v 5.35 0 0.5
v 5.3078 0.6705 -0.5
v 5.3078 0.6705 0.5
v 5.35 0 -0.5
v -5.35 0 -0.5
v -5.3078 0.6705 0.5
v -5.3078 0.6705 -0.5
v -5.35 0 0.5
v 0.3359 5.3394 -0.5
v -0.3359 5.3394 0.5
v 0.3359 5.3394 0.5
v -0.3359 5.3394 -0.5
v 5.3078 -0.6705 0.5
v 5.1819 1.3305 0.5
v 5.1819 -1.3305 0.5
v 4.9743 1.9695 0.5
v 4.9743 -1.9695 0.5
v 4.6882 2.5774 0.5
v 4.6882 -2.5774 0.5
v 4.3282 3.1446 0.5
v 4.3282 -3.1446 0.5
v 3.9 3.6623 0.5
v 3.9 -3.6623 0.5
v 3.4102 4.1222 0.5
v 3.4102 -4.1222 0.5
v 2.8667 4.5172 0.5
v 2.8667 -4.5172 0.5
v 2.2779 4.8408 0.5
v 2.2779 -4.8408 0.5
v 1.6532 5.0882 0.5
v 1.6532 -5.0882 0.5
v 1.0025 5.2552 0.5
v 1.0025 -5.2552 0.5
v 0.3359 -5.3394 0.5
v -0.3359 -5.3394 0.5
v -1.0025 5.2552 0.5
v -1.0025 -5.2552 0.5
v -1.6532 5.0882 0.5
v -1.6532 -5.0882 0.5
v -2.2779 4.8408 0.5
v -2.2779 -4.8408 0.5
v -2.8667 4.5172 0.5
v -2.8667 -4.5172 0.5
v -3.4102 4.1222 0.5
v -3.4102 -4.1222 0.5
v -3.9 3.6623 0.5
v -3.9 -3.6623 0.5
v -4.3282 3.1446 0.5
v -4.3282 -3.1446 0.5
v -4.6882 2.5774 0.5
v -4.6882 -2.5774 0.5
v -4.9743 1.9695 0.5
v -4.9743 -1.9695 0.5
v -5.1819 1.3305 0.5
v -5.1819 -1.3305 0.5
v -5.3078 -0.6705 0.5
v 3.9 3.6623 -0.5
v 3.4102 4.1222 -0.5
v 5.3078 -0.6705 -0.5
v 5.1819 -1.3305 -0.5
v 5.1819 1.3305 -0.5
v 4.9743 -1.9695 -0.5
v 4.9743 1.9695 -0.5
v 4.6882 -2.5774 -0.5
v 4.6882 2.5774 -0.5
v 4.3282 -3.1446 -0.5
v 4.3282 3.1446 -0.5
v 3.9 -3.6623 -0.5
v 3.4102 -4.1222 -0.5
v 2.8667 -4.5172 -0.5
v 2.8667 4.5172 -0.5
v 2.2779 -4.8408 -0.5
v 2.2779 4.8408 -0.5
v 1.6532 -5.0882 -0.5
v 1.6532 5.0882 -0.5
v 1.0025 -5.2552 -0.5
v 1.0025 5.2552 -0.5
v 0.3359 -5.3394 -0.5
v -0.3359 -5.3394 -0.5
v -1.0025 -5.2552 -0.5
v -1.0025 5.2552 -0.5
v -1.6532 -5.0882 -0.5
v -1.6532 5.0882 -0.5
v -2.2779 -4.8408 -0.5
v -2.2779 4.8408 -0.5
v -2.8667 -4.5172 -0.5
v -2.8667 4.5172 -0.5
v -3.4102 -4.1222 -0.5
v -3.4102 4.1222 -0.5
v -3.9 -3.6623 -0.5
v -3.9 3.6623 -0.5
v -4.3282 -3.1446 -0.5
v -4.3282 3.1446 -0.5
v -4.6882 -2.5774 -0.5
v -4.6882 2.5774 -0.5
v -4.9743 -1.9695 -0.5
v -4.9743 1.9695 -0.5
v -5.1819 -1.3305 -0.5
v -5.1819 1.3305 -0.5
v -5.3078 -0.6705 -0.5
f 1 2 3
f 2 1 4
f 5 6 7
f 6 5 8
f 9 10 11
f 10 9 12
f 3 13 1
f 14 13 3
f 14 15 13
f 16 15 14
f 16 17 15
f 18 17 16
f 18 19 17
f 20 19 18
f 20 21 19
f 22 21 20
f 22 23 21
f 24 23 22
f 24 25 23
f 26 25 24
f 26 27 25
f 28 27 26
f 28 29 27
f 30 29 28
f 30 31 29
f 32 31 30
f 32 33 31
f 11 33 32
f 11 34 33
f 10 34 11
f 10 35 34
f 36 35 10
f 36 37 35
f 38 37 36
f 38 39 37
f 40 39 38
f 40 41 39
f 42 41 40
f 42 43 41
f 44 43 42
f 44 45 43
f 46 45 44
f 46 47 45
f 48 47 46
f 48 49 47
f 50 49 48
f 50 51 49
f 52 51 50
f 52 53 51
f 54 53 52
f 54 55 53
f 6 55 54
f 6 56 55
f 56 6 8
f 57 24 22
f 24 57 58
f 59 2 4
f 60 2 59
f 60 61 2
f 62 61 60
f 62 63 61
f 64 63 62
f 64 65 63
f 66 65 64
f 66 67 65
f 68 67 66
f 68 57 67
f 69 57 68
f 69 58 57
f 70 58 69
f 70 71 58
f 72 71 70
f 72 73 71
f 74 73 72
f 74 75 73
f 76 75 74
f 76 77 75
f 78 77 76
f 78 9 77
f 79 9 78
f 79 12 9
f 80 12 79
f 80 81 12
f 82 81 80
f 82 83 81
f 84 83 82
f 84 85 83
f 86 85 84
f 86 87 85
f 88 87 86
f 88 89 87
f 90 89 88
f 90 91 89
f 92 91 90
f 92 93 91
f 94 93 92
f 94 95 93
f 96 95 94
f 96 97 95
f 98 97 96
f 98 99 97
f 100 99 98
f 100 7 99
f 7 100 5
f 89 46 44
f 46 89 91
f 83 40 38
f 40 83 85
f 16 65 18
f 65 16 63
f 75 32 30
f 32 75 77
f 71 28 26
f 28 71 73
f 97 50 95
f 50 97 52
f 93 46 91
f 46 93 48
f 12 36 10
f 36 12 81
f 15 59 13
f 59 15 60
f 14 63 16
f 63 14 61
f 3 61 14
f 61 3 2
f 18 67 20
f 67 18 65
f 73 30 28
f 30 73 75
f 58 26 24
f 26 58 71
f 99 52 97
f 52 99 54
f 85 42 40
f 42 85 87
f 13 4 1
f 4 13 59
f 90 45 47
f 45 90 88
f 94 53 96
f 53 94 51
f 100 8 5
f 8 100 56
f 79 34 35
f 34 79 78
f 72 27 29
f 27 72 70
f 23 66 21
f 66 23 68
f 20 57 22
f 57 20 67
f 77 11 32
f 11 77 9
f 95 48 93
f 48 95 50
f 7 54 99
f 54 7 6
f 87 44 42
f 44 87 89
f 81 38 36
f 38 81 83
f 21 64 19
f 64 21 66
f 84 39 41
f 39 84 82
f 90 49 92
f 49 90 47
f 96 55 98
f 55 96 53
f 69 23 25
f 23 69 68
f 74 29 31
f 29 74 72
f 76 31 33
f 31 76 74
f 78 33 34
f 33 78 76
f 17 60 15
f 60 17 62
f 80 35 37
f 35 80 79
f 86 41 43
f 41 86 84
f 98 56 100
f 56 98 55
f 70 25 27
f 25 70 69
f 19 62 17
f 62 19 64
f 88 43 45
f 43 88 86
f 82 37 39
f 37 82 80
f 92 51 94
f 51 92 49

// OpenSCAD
$fn = 50;


difference() {
	union() {
		translate(v = [0, 0, -0.5000000000]) {
			cylinder(h = 1, r = 5.3500000000);
		}
	}
	union() {
		translate(v = [0, 0, -100.0000000000]) {
			cylinder(h = 200, r = 0);
		}
	}
}
